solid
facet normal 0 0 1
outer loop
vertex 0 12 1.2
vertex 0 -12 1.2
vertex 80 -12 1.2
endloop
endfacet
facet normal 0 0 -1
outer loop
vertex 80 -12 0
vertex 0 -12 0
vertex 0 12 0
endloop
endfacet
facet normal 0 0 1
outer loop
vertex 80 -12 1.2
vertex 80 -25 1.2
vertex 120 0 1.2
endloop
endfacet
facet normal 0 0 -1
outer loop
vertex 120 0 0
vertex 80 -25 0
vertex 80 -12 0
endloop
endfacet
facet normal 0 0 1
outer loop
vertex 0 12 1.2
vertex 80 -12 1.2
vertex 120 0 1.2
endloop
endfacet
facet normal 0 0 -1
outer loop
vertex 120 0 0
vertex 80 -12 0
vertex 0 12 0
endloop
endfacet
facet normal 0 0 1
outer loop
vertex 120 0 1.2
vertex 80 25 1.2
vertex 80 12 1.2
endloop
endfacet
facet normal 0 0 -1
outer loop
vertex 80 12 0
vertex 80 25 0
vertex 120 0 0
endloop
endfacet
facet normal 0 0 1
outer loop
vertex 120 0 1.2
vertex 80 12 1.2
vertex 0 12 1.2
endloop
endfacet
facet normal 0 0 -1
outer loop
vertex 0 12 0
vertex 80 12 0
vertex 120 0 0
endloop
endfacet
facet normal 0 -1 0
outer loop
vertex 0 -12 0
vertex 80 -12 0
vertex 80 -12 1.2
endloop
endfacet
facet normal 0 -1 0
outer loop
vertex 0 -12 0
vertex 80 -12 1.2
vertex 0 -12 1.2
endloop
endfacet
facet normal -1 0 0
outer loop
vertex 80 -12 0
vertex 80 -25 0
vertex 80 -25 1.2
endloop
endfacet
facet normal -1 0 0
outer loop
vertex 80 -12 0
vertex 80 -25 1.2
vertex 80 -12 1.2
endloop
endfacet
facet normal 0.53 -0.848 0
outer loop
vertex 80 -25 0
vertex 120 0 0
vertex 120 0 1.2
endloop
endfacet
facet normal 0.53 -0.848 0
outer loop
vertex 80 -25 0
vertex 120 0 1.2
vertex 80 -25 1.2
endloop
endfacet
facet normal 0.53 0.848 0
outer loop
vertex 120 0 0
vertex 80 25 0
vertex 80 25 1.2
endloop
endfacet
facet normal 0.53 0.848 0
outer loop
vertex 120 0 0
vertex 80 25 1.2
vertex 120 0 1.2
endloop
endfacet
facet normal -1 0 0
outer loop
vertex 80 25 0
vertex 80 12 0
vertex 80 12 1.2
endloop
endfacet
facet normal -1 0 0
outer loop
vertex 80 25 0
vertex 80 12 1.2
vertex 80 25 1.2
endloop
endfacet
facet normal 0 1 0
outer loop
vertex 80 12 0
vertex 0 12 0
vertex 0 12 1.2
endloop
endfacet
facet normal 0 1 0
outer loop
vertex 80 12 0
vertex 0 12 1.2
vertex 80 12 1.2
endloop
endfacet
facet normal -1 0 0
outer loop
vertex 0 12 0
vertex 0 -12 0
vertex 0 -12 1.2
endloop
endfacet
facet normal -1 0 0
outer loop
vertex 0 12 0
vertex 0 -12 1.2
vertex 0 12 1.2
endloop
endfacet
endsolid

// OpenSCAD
// start arrow, 120 mm (generated by tools/demo_course_parts.py)
linear_extrude(1.2) polygon([[0, -12], [80, -12], [80, -25], [120, 0], [80, 25], [80, 12], [0, 12]]);
